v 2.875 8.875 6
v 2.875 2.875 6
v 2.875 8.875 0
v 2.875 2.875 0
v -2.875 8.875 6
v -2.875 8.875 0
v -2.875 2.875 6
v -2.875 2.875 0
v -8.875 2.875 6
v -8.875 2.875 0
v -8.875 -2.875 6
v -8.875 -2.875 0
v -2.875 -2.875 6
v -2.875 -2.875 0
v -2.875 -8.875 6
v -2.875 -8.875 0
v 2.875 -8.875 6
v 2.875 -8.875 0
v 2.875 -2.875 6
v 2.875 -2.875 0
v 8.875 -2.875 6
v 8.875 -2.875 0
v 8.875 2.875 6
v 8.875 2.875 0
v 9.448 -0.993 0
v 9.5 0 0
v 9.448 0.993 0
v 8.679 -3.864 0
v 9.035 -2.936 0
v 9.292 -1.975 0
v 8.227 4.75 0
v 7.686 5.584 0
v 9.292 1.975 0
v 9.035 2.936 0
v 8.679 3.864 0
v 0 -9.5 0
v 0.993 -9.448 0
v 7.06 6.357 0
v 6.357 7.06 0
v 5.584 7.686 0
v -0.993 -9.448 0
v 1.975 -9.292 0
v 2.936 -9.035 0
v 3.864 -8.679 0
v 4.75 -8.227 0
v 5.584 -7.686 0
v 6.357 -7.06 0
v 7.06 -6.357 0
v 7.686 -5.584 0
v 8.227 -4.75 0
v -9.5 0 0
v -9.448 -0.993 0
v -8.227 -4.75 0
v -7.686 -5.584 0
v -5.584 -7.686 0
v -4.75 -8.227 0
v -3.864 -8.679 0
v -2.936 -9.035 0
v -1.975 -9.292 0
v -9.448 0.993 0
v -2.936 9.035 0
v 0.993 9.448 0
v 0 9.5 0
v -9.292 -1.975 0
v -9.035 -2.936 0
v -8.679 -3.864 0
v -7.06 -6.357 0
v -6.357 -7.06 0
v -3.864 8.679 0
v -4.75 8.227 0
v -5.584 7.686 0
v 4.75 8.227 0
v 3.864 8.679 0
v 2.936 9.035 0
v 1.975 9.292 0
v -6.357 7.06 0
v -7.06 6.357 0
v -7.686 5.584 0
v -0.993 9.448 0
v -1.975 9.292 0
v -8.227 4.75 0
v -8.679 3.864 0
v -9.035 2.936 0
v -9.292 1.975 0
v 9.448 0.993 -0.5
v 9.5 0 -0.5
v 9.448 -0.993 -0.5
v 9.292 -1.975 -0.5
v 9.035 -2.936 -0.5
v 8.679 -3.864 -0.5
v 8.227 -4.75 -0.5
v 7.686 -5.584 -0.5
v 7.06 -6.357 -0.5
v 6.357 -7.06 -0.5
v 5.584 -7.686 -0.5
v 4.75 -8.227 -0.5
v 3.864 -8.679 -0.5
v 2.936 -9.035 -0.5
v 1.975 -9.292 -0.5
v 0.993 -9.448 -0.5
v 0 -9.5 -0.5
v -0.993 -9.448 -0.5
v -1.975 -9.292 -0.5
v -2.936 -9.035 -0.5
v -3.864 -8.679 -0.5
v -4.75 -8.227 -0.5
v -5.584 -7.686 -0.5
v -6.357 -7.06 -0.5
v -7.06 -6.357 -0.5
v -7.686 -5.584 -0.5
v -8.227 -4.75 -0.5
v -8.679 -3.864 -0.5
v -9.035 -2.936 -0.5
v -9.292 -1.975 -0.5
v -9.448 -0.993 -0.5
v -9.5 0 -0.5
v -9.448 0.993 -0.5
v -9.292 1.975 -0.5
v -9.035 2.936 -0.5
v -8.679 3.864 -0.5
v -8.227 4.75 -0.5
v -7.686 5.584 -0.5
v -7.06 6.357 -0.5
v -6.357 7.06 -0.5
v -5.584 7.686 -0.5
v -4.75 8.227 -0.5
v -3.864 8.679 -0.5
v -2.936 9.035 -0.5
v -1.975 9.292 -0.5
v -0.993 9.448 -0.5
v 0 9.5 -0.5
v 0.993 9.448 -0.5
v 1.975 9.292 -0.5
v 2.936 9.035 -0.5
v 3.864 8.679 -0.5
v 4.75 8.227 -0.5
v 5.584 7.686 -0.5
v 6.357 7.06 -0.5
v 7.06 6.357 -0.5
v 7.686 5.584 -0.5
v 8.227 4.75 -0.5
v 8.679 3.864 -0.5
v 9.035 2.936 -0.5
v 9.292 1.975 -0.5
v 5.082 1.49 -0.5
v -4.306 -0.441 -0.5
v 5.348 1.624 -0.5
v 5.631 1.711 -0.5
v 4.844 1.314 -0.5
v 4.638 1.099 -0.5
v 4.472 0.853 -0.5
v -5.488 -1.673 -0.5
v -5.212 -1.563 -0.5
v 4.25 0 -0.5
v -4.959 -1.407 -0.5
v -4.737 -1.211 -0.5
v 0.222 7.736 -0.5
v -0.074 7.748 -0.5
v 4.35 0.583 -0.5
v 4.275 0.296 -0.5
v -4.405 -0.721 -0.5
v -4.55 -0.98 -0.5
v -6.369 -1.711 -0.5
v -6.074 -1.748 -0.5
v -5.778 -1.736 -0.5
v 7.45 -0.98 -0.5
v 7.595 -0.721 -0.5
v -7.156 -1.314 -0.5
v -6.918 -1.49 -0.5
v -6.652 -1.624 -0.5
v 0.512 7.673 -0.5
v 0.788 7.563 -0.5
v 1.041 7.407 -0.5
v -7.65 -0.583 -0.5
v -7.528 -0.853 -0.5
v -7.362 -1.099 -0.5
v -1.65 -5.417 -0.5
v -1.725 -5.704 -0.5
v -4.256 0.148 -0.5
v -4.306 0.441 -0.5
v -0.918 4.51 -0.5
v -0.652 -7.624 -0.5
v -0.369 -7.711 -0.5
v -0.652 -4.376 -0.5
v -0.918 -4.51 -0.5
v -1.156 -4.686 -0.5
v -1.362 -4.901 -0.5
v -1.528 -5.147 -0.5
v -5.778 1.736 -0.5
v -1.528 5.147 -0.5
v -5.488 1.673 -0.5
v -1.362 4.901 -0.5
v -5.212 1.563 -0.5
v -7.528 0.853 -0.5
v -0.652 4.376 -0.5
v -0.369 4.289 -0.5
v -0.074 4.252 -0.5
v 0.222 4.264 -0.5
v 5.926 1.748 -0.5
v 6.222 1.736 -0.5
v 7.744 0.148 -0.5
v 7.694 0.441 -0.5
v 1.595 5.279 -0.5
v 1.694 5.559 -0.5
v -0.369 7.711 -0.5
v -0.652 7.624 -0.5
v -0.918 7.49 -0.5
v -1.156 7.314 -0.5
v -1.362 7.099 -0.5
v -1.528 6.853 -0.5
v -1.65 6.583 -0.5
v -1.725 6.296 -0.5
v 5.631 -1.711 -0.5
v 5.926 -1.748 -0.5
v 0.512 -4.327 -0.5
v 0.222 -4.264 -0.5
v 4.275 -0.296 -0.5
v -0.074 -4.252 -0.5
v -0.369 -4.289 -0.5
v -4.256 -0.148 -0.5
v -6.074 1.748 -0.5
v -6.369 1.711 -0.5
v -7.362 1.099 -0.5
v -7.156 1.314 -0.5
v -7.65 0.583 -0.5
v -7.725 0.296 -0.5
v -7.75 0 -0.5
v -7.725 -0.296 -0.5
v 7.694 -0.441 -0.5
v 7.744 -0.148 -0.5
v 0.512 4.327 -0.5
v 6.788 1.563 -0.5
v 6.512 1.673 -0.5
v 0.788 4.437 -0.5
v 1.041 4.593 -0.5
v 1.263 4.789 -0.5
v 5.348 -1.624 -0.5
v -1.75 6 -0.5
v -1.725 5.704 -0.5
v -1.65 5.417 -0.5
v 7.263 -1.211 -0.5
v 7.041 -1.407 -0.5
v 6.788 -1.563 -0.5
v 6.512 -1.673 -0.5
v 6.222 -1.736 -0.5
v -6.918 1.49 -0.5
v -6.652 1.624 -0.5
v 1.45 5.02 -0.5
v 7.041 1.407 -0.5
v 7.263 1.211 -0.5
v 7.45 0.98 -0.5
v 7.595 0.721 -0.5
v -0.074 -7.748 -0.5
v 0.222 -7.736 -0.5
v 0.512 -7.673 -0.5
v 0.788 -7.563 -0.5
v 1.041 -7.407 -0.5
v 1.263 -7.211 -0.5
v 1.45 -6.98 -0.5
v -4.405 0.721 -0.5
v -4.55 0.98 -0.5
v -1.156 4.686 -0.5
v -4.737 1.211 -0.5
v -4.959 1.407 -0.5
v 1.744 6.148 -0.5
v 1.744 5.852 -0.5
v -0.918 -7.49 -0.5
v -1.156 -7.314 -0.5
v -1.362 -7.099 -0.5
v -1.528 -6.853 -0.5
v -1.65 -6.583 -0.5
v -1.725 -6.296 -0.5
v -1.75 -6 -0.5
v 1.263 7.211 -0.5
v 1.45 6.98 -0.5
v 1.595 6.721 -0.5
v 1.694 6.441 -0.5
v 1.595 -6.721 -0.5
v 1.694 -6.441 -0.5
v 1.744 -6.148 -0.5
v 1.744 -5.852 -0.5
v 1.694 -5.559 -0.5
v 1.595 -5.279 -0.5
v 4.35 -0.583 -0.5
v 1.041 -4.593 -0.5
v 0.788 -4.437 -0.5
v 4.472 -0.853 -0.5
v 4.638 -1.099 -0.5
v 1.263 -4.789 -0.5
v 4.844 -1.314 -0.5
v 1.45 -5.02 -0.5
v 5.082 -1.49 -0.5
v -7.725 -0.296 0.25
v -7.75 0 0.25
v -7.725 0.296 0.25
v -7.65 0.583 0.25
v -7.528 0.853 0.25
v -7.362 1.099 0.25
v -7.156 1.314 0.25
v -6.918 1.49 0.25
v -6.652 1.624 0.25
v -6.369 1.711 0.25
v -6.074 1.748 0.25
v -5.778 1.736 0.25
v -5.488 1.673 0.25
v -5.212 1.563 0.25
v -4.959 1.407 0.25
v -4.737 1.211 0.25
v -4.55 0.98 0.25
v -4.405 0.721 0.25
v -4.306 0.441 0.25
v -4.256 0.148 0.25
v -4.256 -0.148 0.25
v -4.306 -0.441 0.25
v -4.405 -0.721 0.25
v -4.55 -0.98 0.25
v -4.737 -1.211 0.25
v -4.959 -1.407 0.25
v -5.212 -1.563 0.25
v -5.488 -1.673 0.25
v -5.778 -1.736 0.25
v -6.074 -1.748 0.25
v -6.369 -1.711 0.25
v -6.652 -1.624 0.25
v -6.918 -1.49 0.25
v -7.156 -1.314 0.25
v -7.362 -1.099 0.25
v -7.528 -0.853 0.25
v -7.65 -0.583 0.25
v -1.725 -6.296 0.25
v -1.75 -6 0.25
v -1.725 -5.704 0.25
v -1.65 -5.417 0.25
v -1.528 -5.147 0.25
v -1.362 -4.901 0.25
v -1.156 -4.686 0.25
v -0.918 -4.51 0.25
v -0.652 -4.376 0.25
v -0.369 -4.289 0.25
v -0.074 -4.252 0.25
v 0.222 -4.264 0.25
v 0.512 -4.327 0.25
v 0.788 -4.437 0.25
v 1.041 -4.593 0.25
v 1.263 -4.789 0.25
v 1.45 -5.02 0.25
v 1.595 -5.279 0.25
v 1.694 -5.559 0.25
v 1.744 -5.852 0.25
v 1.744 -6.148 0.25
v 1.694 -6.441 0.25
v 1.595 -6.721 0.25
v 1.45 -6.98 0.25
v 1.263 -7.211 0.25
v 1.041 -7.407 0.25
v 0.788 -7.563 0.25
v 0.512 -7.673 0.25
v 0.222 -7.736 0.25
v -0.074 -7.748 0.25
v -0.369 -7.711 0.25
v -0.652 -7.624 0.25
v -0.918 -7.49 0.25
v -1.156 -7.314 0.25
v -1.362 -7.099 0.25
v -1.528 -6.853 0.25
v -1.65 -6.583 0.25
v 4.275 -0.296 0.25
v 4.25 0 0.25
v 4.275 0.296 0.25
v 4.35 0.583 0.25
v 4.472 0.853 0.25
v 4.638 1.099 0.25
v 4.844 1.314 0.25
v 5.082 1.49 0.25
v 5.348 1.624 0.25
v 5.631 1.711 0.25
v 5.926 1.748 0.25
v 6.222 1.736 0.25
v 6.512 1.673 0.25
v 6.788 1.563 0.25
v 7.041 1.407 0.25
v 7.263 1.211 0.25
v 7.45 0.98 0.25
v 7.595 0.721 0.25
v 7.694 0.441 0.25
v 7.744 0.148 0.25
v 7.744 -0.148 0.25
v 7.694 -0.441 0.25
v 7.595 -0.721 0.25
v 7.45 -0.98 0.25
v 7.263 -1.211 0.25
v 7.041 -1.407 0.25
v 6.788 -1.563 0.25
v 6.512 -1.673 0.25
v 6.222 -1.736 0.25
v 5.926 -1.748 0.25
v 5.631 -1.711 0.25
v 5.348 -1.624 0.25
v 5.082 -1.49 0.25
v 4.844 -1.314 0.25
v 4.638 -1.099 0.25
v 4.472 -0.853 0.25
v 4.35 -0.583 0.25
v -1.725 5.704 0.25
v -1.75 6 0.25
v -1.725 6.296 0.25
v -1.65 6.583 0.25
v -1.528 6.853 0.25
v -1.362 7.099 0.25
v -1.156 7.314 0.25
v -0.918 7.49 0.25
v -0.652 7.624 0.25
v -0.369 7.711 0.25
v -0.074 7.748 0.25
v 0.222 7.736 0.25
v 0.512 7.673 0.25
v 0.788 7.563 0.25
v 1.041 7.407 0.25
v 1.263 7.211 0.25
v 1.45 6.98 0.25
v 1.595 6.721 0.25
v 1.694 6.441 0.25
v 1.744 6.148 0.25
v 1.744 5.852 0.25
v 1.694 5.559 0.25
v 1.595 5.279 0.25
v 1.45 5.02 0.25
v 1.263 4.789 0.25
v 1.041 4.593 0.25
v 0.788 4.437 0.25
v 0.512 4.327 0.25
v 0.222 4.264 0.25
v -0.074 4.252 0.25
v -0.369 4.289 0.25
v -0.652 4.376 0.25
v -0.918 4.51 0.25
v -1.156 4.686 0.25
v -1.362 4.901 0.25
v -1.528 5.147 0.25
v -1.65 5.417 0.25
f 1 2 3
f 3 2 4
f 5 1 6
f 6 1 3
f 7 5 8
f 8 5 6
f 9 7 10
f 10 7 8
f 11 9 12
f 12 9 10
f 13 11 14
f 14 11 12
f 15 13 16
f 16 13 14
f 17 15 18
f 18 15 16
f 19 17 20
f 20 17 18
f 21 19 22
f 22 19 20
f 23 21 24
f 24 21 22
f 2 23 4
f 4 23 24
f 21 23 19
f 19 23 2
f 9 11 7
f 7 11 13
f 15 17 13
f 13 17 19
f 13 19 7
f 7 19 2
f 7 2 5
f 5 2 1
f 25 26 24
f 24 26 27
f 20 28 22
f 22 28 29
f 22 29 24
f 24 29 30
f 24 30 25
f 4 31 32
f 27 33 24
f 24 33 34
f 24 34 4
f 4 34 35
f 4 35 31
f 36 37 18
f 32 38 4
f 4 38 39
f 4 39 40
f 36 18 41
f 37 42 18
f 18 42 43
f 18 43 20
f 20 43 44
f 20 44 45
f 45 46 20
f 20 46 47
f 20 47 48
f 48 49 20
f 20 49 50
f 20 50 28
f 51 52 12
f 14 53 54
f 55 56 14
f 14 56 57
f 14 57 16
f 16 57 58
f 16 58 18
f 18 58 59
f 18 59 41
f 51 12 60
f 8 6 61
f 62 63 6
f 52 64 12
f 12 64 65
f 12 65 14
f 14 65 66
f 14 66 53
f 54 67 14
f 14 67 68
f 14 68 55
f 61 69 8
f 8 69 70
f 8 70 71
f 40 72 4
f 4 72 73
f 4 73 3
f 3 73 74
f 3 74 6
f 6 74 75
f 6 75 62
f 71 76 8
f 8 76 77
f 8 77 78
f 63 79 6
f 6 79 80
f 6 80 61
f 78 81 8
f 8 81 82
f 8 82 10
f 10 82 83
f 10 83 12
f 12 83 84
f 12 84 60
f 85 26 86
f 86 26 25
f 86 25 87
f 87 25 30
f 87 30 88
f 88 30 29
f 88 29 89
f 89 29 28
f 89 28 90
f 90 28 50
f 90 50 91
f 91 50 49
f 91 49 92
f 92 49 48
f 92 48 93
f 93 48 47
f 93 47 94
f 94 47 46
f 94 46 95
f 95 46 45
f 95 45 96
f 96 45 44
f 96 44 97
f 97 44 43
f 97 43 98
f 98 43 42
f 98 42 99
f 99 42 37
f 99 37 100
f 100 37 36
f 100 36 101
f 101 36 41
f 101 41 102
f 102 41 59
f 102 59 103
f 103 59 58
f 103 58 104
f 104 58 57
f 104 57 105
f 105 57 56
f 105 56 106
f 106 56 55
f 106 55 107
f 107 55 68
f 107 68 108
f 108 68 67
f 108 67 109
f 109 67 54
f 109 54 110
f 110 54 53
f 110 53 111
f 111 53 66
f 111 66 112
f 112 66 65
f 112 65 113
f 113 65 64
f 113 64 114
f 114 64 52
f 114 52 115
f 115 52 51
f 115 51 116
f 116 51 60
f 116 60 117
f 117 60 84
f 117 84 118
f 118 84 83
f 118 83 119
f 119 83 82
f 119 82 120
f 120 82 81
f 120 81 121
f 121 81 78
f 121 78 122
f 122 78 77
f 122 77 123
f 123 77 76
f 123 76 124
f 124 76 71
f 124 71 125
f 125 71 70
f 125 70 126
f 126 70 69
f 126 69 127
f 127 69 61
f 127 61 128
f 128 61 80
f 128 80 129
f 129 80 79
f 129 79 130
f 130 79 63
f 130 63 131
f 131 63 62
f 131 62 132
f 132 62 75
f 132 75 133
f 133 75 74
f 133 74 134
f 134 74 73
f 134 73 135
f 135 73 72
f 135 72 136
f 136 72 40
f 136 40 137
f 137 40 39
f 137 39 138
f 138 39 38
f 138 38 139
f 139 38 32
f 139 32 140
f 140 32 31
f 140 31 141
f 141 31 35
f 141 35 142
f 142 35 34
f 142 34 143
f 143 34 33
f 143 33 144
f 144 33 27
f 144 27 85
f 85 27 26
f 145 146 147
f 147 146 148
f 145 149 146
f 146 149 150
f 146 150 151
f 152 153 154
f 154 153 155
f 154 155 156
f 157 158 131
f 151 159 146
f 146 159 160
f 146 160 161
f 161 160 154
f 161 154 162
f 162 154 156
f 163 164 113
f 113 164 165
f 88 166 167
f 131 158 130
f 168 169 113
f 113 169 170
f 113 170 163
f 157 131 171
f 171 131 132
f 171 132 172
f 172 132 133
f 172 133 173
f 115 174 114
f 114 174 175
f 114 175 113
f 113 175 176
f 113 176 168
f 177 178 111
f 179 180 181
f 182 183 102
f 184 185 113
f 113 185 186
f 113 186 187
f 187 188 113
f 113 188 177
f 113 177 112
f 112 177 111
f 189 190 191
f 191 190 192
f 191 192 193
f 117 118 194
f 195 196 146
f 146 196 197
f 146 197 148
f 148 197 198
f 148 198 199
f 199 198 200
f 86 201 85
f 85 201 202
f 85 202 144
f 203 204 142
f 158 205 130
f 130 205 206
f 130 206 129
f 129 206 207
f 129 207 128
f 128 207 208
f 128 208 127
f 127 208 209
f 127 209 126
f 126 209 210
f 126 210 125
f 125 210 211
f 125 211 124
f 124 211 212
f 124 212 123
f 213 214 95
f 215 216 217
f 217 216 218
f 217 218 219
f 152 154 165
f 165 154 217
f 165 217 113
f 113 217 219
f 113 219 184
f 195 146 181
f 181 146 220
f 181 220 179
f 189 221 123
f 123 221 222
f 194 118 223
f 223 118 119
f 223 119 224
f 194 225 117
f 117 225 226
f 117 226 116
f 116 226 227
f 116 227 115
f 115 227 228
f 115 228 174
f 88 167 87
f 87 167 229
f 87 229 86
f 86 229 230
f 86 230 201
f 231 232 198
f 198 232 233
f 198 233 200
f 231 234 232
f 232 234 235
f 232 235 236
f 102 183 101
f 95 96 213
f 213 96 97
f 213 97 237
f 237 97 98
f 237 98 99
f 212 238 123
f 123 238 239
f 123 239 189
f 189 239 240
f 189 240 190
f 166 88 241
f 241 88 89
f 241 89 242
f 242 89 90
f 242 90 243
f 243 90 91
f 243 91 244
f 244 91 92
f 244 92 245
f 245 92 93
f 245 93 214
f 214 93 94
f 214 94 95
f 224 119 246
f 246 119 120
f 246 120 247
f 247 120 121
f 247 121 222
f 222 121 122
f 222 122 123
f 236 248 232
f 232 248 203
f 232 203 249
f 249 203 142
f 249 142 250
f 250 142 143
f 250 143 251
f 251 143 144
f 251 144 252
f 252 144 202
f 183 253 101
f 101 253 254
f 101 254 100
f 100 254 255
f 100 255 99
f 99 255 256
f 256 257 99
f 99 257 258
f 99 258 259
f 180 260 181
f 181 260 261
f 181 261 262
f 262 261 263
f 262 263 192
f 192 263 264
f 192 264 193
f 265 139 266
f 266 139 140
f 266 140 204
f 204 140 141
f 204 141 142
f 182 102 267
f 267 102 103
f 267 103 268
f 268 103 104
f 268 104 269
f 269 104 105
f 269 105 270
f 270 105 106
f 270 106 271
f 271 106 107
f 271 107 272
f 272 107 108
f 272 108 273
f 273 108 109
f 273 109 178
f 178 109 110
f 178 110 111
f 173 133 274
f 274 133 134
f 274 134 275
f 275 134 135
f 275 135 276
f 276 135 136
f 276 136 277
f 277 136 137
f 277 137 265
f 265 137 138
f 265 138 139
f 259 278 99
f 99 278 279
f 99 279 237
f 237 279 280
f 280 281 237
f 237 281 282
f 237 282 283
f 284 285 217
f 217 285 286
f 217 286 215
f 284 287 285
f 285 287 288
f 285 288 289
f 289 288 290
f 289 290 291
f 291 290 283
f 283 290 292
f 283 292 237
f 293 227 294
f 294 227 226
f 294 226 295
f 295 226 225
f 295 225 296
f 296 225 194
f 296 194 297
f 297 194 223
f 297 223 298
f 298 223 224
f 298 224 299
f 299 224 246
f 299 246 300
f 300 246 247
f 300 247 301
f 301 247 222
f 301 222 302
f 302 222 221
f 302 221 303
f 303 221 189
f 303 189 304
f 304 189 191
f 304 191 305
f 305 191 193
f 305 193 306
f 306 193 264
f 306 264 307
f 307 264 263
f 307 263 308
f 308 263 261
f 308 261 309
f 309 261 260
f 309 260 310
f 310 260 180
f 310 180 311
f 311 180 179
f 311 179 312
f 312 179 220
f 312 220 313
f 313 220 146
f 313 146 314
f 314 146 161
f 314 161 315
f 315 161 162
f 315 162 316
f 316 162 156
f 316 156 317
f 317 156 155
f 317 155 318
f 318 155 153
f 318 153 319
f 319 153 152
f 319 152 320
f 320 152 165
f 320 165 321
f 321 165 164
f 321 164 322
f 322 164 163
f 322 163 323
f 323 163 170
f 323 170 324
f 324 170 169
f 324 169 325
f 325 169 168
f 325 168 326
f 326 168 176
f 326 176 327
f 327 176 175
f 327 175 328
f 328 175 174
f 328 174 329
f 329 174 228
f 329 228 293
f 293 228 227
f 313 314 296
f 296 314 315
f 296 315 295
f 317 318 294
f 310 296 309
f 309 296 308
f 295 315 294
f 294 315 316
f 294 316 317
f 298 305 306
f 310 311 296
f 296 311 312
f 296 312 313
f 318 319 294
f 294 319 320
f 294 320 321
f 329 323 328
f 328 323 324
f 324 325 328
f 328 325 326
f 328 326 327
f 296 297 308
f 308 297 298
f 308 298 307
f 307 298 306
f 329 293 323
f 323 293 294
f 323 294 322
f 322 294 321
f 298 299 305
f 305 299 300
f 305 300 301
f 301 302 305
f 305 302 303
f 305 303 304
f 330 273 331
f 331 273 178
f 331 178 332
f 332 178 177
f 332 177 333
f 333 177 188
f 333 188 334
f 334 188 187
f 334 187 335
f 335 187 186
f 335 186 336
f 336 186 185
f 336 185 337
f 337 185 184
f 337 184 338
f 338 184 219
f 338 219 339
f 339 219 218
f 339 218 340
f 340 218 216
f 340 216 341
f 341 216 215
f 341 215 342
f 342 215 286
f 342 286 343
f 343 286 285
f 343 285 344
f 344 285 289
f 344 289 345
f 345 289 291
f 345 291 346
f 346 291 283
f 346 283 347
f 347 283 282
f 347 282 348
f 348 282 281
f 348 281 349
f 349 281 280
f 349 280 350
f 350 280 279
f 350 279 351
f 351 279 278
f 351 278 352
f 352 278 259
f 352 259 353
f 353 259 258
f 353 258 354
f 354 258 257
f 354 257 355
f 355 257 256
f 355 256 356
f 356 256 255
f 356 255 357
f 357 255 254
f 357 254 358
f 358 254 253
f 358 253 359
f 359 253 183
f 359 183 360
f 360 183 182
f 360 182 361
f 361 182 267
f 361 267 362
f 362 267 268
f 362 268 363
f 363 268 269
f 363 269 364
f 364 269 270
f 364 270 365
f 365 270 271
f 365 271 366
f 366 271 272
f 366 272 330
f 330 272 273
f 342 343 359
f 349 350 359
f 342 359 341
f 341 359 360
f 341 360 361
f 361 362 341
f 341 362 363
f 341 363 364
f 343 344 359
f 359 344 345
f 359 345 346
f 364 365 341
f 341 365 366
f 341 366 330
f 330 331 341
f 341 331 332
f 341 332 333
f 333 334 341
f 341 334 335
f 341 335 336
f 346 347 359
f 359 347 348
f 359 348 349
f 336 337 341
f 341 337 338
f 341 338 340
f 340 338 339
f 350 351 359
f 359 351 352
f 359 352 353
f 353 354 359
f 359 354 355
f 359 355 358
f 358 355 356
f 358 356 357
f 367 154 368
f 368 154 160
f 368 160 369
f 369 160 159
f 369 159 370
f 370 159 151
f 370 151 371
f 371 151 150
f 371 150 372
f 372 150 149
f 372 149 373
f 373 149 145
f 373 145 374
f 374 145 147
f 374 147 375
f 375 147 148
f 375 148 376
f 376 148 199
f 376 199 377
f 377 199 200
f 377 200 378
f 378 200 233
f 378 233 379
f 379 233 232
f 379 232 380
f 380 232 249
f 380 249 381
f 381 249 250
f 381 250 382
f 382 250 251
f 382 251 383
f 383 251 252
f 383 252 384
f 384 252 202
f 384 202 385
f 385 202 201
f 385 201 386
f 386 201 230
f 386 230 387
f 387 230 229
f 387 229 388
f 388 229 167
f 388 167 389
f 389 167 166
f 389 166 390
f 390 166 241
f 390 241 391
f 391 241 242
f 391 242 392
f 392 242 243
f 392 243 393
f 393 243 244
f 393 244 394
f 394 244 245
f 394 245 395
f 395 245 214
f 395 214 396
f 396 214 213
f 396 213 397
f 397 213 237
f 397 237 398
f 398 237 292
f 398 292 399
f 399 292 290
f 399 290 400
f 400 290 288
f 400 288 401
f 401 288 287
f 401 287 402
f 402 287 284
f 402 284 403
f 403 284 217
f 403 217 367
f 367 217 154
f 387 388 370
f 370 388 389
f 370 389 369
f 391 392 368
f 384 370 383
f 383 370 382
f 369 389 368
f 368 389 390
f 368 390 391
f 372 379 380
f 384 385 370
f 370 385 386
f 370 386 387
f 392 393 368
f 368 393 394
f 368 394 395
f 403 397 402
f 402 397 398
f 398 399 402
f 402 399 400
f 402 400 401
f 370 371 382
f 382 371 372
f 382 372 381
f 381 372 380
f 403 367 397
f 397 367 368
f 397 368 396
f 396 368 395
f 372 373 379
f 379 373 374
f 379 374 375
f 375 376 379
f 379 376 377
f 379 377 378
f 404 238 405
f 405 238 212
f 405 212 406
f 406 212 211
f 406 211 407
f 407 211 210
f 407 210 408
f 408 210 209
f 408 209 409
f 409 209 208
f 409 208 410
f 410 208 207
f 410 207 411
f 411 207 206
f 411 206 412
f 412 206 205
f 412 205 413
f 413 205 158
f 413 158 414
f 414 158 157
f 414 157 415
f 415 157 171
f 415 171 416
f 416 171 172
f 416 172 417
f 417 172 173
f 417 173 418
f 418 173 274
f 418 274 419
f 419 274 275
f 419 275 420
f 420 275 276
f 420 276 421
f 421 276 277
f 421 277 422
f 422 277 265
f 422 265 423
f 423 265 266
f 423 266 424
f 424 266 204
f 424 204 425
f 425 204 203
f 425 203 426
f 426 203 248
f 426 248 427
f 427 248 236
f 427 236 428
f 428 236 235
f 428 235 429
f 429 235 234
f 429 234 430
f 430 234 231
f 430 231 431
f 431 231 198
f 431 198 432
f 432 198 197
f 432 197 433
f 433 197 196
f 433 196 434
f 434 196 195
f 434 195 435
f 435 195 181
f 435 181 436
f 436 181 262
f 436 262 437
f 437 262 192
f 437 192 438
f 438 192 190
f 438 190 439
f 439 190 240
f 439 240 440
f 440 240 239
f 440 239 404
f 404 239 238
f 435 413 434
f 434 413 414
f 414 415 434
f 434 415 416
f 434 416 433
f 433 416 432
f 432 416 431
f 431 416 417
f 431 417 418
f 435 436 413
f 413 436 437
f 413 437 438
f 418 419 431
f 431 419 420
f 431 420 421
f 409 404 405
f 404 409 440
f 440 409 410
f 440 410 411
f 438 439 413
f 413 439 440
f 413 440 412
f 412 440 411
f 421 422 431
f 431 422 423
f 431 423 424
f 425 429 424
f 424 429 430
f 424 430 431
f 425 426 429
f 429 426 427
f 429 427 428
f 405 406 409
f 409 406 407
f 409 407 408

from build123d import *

# Parameters (mm, degrees)
BOSS_EXTRUDE1_DEPTH = 6
SKETCH2_R           = 9.5
BOSS_EXTRUDE2_DEPTH = 0.5
SKETCH4_R           = 1.75
CUT_EXTRUDE2_DEPTH  = 0.75


with BuildPart() as part:
    # Sketch1 → Boss-Extrude1 (new body)
    with BuildSketch(Plane.XY):
        Polygon((-2.875, 2.875), (-2.875, 8.875), (2.875, 8.875), (2.875, 2.875), (8.875, 2.875), (8.875, -2.875), (2.875, -2.875), (2.875, -8.875), (-2.875, -8.875), (-2.875, -2.875), (-8.875, -2.875), (-8.875, 2.875), align=None)
    extrude(amount=BOSS_EXTRUDE1_DEPTH)

    # Sketch2 → Boss-Extrude2 (add)
    with BuildSketch(Plane(origin=(0, 0, 0), x_dir=(-1, 0, 0), z_dir=(0, 0, -1))):
        Circle(SKETCH2_R)
    extrude(amount=BOSS_EXTRUDE2_DEPTH)

    # Sketch4 → Cut-Extrude2 (cut)
    with BuildSketch(Plane(origin=(0, 0, -0.5), x_dir=(-1, 0, 0), z_dir=(0, 0, -1))):
        with Locations((6, 0)):
            Circle(SKETCH4_R)
        with Locations((0, -6)):
            Circle(SKETCH4_R)
        with Locations((-6, 0)):
            Circle(SKETCH4_R)
        with Locations((0, 6)):
            Circle(SKETCH4_R)
    extrude(amount=-CUT_EXTRUDE2_DEPTH, mode=Mode.SUBTRACT)


solid = part.part
